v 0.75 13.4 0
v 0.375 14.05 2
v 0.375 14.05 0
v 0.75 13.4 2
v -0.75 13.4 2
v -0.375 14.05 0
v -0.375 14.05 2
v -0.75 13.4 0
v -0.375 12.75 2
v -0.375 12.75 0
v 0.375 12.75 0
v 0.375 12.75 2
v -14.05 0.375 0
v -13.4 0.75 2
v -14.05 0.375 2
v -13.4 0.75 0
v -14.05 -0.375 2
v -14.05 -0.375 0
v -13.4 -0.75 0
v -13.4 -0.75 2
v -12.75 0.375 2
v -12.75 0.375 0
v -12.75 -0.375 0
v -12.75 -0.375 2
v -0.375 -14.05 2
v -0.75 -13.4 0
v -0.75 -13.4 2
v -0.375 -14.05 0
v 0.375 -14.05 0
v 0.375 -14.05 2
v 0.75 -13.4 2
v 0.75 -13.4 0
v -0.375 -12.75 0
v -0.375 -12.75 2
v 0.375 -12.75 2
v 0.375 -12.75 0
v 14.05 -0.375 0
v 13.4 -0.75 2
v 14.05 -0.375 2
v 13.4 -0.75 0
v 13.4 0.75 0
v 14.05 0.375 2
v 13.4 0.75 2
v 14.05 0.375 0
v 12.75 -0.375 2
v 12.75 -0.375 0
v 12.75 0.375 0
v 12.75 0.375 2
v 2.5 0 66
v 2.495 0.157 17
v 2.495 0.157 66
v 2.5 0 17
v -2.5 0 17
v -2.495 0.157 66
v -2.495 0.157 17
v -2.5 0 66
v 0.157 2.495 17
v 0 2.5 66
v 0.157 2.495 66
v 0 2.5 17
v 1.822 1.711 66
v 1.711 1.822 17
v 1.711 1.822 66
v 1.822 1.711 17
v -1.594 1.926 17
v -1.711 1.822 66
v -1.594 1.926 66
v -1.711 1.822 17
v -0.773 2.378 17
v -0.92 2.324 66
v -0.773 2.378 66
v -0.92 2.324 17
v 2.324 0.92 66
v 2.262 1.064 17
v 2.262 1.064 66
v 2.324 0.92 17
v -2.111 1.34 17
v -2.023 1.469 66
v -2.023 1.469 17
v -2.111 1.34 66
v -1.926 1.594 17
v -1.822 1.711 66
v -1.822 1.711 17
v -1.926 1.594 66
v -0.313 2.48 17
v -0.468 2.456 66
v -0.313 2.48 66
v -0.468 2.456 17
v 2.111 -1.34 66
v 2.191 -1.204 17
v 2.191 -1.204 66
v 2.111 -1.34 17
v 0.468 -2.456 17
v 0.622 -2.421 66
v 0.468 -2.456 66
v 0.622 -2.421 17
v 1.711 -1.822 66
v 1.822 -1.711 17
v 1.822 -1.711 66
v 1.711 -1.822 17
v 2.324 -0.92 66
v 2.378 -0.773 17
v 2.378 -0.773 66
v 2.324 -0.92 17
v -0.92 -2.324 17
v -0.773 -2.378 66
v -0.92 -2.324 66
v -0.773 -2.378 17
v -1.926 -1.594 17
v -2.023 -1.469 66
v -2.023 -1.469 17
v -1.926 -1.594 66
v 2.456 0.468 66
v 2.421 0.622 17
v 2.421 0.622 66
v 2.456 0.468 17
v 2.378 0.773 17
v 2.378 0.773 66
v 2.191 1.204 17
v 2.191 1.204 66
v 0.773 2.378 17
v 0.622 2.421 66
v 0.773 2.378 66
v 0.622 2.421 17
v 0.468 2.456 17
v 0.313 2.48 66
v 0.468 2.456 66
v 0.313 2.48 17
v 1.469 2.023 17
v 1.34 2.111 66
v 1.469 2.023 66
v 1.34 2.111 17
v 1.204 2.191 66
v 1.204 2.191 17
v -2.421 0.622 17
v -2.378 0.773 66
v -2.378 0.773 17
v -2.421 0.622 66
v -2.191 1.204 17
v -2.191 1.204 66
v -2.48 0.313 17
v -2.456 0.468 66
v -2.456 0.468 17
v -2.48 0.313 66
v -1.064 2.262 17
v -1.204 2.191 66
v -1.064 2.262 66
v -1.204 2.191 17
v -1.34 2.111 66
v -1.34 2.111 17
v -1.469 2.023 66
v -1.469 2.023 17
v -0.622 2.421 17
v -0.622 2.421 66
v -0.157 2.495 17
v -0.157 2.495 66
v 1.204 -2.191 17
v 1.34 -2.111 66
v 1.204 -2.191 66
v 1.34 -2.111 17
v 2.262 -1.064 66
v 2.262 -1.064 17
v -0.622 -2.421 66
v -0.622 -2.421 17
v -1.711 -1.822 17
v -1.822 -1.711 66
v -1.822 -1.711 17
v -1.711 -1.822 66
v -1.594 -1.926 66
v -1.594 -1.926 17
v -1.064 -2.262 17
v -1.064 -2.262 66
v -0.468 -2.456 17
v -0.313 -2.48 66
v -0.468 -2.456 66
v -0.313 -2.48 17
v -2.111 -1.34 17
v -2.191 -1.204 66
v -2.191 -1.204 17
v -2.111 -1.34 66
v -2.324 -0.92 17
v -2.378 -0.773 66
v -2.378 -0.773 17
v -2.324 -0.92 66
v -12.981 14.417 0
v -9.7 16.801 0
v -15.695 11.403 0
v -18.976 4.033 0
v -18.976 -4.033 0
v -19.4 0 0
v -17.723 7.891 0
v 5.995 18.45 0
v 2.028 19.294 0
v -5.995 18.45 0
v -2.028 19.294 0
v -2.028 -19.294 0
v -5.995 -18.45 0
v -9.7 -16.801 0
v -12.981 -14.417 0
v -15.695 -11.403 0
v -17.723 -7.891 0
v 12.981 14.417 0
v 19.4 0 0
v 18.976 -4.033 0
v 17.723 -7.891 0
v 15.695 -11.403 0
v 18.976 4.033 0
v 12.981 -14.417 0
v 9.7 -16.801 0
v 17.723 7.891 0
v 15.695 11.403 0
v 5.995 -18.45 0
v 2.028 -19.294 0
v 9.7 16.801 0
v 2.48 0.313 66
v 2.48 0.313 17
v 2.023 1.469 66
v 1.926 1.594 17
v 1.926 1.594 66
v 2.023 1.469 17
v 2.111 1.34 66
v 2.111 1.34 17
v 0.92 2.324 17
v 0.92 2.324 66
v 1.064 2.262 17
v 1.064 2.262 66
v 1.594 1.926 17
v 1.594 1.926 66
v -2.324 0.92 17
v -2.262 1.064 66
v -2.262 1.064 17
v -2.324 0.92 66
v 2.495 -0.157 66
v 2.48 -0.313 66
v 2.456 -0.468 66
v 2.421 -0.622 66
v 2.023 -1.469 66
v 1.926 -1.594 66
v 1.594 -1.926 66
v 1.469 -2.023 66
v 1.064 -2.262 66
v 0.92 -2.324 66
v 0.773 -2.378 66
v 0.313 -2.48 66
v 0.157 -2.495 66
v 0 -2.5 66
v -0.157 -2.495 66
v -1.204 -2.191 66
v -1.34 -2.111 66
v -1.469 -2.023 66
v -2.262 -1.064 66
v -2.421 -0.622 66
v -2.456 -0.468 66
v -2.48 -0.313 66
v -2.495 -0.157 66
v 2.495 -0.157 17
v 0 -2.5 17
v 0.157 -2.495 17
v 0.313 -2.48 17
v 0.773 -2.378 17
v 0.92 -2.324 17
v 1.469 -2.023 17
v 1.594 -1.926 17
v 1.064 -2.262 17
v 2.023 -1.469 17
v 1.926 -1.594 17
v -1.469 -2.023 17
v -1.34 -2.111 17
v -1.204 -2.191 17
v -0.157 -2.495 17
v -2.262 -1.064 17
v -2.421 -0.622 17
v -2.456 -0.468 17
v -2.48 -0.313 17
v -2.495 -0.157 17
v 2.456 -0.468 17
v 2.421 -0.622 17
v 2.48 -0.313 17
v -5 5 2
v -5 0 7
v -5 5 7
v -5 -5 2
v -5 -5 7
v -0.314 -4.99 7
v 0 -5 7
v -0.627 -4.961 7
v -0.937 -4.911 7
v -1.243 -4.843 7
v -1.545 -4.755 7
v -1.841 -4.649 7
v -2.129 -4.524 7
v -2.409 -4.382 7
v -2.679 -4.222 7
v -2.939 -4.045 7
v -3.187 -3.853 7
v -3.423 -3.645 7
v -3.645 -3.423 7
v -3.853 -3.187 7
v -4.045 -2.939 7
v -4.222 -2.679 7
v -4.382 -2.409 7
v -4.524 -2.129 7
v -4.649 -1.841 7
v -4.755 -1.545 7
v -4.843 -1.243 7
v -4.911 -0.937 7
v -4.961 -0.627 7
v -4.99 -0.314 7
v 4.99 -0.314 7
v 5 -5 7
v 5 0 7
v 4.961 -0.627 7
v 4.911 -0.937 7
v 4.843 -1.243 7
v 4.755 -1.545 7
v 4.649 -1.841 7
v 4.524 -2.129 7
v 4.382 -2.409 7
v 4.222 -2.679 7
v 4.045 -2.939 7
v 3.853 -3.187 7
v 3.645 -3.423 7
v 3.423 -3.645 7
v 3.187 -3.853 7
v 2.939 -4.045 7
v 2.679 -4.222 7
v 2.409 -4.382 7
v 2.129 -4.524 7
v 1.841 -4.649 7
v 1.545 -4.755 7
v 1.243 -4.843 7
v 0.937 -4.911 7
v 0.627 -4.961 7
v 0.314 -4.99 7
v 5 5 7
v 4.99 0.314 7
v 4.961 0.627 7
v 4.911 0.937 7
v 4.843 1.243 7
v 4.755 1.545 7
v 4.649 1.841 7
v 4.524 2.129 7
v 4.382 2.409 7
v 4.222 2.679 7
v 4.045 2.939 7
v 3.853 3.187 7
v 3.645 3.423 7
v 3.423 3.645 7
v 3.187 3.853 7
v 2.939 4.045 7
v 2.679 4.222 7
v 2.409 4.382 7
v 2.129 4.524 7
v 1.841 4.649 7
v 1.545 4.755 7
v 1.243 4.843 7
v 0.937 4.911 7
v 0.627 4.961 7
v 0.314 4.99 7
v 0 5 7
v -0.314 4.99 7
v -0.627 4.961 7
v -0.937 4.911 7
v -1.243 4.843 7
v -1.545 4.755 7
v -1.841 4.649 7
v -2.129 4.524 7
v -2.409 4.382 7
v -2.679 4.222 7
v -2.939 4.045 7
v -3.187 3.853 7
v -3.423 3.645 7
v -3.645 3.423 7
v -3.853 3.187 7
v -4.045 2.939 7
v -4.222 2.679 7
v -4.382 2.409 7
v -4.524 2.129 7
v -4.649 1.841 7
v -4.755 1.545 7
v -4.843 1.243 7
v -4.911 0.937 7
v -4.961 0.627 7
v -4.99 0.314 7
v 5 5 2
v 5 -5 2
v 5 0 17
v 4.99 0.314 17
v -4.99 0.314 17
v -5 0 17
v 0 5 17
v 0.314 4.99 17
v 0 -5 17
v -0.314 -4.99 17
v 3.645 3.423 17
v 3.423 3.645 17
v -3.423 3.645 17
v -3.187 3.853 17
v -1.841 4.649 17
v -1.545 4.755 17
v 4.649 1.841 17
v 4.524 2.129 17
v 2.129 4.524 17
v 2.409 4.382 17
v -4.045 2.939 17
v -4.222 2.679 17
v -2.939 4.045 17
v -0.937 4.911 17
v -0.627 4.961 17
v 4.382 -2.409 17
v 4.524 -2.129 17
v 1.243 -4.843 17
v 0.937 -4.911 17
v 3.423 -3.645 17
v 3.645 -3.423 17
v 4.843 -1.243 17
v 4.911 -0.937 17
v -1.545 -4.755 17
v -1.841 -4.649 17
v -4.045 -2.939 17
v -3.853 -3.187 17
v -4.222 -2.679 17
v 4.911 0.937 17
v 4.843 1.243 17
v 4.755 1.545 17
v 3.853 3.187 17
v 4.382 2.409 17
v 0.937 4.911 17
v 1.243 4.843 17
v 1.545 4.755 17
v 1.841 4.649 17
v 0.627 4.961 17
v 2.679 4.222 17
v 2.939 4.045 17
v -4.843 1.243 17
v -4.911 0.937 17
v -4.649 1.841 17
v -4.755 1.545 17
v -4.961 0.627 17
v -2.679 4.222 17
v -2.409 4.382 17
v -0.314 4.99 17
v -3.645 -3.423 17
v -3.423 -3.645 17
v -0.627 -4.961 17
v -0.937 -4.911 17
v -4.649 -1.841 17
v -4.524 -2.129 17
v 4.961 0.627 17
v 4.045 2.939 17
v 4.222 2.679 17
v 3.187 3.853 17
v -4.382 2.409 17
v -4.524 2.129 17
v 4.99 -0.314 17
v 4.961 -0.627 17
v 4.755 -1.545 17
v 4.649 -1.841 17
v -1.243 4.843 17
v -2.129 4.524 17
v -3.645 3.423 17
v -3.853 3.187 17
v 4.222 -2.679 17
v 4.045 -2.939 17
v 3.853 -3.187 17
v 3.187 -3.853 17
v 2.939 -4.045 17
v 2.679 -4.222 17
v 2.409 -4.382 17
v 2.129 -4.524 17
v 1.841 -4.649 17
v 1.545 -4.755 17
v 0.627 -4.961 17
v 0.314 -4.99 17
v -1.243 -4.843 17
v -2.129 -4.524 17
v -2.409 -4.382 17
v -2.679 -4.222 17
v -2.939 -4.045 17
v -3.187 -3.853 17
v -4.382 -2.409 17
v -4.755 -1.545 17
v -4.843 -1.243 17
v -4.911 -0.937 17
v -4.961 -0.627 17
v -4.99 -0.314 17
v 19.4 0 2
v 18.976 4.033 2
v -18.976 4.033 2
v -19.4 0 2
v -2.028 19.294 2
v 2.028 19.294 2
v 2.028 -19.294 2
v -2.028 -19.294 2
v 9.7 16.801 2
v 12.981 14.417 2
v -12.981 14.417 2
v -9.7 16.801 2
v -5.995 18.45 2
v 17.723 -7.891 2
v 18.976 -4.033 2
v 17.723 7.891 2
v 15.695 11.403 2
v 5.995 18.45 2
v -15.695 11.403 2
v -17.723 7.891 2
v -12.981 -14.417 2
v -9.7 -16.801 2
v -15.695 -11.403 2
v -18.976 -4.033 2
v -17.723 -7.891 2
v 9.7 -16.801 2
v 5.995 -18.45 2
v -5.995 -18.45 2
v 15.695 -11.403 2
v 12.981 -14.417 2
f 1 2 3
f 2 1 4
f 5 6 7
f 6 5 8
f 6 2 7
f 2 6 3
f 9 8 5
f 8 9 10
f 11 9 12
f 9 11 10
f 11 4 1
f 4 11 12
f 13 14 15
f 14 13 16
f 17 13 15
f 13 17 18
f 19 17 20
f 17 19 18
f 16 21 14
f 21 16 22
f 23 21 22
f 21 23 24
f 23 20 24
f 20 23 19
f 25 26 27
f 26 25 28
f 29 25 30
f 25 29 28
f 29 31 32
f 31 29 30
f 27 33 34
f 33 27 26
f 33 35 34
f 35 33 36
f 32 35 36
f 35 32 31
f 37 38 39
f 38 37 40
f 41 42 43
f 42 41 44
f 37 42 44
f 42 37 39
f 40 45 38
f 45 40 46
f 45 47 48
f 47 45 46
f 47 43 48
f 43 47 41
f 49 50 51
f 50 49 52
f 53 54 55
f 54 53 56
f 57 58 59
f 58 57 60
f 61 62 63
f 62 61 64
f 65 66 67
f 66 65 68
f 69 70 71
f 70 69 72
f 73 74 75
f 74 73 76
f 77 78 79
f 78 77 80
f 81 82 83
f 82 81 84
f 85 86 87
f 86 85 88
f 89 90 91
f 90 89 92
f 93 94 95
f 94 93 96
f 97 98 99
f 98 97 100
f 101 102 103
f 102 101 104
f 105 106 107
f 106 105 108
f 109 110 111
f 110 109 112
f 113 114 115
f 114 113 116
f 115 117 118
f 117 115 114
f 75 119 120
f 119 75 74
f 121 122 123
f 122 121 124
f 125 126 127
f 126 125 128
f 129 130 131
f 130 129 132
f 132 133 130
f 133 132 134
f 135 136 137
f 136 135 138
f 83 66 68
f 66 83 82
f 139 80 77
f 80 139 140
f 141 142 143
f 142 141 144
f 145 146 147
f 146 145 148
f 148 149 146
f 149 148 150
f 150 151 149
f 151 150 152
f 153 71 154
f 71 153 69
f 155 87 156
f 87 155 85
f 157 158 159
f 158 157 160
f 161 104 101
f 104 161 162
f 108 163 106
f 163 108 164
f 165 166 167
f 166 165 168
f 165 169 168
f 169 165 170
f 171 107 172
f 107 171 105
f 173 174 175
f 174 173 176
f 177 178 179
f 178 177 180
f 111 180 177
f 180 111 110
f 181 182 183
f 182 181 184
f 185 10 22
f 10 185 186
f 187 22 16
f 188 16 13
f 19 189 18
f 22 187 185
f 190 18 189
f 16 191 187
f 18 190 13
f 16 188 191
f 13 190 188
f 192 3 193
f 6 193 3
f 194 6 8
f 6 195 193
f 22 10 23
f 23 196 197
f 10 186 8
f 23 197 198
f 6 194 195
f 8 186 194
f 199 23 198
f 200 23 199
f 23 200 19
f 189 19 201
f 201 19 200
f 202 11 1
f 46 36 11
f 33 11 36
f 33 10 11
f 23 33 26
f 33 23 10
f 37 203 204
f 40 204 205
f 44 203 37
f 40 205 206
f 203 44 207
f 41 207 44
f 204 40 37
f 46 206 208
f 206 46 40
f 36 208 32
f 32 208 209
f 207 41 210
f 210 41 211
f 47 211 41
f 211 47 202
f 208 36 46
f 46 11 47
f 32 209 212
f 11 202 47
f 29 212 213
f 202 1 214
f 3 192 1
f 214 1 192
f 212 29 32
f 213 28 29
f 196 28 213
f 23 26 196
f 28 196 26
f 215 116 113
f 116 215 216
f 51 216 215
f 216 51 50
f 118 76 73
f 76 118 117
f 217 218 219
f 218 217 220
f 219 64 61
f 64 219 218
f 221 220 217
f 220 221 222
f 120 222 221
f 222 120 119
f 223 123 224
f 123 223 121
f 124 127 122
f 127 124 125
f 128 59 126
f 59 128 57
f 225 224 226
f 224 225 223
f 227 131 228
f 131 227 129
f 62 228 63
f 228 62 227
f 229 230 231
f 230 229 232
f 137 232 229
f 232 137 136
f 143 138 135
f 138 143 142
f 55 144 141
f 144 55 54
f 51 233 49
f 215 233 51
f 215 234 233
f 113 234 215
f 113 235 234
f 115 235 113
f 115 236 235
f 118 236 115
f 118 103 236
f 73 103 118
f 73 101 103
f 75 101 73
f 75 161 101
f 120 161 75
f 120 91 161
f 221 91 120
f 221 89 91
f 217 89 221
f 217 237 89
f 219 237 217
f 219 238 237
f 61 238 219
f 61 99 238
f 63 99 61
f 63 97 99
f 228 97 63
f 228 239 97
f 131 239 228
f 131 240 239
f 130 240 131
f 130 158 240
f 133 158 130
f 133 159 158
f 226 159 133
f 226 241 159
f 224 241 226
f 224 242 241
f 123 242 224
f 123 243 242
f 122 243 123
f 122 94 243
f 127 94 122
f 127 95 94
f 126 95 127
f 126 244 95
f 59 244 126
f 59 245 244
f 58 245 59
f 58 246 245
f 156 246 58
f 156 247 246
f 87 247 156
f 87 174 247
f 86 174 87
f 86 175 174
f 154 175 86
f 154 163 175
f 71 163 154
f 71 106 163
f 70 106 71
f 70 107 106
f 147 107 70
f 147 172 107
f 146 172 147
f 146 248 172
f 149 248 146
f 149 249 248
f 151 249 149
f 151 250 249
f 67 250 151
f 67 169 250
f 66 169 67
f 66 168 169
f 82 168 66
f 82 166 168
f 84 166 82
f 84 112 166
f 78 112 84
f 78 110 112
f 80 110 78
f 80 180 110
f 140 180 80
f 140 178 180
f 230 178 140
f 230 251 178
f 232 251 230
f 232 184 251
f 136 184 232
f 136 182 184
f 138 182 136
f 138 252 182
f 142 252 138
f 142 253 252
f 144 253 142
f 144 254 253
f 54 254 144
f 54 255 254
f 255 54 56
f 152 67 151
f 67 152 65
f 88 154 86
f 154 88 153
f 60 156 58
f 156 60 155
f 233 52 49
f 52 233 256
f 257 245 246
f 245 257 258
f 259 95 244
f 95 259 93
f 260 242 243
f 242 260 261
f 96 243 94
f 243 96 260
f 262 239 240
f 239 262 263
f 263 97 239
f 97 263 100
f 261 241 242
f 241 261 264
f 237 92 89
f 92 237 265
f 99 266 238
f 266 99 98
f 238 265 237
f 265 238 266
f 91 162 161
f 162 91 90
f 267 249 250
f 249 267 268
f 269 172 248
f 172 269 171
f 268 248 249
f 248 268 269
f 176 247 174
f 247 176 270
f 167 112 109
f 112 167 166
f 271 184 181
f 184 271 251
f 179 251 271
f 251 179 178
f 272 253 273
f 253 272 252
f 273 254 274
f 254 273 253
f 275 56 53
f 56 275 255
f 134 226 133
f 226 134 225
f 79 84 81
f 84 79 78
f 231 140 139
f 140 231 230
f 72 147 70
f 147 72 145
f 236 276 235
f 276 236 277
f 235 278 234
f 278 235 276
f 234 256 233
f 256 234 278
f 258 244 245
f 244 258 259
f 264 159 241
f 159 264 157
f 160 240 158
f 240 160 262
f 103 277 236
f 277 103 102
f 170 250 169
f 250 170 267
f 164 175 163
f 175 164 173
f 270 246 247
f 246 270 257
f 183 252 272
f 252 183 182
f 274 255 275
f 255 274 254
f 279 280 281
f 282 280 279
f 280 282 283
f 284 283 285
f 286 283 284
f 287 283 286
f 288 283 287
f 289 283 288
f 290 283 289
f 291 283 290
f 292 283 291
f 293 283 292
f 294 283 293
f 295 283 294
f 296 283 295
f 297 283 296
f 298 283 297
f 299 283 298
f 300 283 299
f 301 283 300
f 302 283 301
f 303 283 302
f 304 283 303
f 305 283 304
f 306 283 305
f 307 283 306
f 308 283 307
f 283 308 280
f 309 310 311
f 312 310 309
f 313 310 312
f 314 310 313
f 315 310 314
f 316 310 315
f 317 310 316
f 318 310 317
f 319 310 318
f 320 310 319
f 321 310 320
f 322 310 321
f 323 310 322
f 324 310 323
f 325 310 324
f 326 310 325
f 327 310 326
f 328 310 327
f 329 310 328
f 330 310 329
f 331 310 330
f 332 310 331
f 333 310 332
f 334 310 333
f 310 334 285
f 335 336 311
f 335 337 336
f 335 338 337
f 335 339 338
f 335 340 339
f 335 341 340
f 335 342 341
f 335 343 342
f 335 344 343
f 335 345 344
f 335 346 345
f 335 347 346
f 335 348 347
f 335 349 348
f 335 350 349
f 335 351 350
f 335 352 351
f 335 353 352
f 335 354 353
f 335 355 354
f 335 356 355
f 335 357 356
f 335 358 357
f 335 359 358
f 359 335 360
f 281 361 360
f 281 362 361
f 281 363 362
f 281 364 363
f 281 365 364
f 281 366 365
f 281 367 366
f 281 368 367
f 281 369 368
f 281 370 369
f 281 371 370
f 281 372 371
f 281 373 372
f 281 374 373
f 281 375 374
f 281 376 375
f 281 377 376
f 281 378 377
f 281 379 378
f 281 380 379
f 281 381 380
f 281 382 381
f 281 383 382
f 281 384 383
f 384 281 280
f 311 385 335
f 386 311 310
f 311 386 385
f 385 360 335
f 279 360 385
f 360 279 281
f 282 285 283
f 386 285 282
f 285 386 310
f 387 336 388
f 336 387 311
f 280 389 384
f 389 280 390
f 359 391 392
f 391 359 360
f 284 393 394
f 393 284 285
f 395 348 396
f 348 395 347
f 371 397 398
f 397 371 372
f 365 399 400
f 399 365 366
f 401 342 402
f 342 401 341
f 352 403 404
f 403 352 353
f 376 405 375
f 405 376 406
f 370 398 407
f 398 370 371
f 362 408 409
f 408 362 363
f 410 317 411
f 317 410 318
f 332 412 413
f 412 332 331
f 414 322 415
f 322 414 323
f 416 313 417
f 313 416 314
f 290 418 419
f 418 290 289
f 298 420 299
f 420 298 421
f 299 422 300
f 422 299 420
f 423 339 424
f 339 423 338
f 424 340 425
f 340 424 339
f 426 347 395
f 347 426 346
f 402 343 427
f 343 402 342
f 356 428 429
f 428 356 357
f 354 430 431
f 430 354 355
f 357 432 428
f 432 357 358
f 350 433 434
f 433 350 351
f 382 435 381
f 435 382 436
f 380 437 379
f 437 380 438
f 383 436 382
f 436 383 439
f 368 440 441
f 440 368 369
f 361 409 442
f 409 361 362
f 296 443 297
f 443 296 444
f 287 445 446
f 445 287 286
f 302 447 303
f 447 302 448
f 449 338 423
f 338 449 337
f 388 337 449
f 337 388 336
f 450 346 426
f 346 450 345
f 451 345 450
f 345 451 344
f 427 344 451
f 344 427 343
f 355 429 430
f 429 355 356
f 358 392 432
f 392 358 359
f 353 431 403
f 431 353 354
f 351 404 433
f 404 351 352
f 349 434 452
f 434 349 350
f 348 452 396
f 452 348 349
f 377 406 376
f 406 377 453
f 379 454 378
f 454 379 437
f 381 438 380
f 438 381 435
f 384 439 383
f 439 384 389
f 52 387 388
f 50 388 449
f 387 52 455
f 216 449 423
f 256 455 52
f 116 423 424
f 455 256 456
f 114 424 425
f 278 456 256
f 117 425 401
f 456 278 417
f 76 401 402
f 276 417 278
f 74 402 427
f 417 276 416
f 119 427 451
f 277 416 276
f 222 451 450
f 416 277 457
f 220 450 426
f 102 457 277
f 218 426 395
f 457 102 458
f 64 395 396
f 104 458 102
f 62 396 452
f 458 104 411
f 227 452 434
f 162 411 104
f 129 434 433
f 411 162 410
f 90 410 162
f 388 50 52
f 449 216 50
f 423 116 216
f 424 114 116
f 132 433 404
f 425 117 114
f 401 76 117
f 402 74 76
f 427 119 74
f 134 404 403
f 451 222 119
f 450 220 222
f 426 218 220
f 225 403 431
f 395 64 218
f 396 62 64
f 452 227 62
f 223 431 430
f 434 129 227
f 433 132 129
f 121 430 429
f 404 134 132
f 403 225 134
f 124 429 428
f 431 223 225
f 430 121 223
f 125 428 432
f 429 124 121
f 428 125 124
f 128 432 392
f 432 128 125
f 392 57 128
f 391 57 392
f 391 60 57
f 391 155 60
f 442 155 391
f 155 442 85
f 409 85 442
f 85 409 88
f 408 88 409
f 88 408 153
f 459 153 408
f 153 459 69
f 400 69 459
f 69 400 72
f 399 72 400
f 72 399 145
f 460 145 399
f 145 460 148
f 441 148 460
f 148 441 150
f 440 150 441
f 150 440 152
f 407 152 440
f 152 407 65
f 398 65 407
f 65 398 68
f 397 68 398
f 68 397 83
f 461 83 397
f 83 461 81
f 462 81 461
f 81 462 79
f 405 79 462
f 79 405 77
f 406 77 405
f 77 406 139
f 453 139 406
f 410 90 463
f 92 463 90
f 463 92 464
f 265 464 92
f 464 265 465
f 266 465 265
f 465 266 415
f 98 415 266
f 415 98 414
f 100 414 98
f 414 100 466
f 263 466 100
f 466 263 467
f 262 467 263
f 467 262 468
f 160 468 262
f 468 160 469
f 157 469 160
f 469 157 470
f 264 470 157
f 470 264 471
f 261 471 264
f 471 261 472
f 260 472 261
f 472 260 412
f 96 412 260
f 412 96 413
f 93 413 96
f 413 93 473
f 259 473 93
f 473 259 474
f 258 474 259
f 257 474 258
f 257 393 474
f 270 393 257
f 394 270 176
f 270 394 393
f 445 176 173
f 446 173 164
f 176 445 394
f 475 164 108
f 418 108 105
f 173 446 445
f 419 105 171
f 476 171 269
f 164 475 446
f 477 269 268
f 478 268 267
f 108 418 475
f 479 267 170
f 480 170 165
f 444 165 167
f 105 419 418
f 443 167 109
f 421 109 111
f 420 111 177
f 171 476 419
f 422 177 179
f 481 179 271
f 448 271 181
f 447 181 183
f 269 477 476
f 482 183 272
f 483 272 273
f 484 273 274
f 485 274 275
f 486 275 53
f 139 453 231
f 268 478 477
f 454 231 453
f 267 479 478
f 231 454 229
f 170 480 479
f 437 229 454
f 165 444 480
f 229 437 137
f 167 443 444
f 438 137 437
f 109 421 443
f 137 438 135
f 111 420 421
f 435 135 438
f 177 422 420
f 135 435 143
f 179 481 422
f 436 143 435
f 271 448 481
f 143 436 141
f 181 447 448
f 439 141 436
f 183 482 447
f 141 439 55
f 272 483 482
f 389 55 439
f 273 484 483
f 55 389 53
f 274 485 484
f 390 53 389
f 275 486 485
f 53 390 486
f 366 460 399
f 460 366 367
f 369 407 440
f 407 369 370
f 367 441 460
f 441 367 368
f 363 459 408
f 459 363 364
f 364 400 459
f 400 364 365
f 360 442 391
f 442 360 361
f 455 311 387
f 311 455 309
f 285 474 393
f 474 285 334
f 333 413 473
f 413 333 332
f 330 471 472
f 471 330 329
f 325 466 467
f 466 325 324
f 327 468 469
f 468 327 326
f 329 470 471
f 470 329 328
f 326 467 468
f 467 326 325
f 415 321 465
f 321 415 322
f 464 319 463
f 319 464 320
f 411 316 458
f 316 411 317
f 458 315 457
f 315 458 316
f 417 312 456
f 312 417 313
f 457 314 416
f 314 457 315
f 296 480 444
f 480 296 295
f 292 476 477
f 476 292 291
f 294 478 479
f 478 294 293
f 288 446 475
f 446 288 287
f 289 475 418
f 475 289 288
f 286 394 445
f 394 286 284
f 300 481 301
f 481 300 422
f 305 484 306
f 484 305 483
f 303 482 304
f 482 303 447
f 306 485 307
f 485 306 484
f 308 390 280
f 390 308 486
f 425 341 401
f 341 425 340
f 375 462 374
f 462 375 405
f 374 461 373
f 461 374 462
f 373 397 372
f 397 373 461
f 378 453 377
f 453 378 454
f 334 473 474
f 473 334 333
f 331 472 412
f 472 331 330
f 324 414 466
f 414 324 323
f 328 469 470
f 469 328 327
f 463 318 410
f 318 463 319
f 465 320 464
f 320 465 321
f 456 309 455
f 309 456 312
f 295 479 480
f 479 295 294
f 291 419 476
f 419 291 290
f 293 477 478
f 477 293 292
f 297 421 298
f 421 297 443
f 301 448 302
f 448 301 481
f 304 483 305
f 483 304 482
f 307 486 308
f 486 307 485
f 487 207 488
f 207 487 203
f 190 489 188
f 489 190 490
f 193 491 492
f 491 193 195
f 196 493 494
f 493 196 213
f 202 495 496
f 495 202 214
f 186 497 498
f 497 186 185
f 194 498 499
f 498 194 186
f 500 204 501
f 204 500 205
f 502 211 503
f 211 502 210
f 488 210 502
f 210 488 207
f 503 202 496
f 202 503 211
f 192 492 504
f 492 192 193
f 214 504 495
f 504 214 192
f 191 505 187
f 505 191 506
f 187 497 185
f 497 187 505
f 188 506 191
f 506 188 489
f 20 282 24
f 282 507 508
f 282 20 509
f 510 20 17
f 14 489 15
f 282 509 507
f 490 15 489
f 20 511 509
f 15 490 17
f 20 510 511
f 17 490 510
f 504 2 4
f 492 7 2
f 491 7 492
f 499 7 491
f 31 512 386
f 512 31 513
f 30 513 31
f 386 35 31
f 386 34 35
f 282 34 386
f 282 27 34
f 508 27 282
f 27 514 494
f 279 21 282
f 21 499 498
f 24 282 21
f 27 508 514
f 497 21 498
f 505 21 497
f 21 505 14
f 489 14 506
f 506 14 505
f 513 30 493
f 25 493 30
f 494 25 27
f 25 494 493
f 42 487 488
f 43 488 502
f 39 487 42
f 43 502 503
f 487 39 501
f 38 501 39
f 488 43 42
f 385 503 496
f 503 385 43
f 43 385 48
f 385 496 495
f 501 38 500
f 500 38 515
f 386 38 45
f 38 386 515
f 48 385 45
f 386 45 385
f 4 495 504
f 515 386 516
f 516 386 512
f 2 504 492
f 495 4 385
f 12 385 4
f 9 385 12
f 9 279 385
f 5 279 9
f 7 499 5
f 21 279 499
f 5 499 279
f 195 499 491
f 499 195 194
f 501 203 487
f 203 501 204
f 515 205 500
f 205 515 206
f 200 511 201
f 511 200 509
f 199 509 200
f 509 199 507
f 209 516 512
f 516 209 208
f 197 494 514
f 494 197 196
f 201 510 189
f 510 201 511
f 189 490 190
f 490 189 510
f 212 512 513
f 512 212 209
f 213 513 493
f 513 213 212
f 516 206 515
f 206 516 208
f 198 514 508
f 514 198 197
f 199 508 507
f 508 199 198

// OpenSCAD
//-------------------------------------------------------------
//-- Axle and servo 4 horn hub for mobile robots
//-------------------------------------------------------------

//-- Parameters common to all horns
horn_drill_diam   = 1.5;
horn_plate_height = 2;                  //-- plate height

//-- Parallax 900-0008 4-arm horn parameters
a4h_end_diam       = 5;
a4h_center_diam    = 9.5;
a4h_arm_length     = 19.4;
a4h_drill_distance = 13.4;

stop_diam       = 10;
wheel_thickness = 5;
stop_length     = 10;
axle_diam       = 5;
axle_length     = 55+stop_length;

//--------------------------------------------------------------
//-- Generic module for the horn's drills
//-- Parameters:
//--  d = drill's radial distance (from the horn's center)
//--  n = number of drills
//--  h = horn_plate_height
//--------------------------------------------------------------
module horn_drills(d,n,h)
{
  union() {
    for ( i = [0 : n-1] ) {
        rotate([0,0,i*360/n])
        translate([0,d,0])
        cylinder(r=horn_drill_diam/2, h=h+10, center=true, $fn=6);  
      }
  }
}



//-------------------------------------------------------
//--  An axle with a 4 horn servo hub attached
//--------------------------------------------------------
module axle_and_hub()
{
  difference() {
  
    union() {   
      // Axle
      cylinder(h=horn_plate_height/2+axle_length, d=axle_diam, $fn=100);
    
      // Square stop
      translate([-stop_diam/2, -stop_diam/2, 0])
      cube([stop_diam, stop_diam, horn_plate_height+wheel_thickness]);

      // Cylinder stop
      cylinder(h=horn_plate_height+wheel_thickness+stop_length, d=stop_diam, $fn=100);
      
      // End cylinder
      cylinder(h=horn_plate_height, r=a4h_arm_length);      
    }

    //-- Horn drills
    horn_drills(d=a4h_drill_distance, n=4, h=horn_plate_height*2);
  }    
}


//-- Test!
axle_and_hub();
